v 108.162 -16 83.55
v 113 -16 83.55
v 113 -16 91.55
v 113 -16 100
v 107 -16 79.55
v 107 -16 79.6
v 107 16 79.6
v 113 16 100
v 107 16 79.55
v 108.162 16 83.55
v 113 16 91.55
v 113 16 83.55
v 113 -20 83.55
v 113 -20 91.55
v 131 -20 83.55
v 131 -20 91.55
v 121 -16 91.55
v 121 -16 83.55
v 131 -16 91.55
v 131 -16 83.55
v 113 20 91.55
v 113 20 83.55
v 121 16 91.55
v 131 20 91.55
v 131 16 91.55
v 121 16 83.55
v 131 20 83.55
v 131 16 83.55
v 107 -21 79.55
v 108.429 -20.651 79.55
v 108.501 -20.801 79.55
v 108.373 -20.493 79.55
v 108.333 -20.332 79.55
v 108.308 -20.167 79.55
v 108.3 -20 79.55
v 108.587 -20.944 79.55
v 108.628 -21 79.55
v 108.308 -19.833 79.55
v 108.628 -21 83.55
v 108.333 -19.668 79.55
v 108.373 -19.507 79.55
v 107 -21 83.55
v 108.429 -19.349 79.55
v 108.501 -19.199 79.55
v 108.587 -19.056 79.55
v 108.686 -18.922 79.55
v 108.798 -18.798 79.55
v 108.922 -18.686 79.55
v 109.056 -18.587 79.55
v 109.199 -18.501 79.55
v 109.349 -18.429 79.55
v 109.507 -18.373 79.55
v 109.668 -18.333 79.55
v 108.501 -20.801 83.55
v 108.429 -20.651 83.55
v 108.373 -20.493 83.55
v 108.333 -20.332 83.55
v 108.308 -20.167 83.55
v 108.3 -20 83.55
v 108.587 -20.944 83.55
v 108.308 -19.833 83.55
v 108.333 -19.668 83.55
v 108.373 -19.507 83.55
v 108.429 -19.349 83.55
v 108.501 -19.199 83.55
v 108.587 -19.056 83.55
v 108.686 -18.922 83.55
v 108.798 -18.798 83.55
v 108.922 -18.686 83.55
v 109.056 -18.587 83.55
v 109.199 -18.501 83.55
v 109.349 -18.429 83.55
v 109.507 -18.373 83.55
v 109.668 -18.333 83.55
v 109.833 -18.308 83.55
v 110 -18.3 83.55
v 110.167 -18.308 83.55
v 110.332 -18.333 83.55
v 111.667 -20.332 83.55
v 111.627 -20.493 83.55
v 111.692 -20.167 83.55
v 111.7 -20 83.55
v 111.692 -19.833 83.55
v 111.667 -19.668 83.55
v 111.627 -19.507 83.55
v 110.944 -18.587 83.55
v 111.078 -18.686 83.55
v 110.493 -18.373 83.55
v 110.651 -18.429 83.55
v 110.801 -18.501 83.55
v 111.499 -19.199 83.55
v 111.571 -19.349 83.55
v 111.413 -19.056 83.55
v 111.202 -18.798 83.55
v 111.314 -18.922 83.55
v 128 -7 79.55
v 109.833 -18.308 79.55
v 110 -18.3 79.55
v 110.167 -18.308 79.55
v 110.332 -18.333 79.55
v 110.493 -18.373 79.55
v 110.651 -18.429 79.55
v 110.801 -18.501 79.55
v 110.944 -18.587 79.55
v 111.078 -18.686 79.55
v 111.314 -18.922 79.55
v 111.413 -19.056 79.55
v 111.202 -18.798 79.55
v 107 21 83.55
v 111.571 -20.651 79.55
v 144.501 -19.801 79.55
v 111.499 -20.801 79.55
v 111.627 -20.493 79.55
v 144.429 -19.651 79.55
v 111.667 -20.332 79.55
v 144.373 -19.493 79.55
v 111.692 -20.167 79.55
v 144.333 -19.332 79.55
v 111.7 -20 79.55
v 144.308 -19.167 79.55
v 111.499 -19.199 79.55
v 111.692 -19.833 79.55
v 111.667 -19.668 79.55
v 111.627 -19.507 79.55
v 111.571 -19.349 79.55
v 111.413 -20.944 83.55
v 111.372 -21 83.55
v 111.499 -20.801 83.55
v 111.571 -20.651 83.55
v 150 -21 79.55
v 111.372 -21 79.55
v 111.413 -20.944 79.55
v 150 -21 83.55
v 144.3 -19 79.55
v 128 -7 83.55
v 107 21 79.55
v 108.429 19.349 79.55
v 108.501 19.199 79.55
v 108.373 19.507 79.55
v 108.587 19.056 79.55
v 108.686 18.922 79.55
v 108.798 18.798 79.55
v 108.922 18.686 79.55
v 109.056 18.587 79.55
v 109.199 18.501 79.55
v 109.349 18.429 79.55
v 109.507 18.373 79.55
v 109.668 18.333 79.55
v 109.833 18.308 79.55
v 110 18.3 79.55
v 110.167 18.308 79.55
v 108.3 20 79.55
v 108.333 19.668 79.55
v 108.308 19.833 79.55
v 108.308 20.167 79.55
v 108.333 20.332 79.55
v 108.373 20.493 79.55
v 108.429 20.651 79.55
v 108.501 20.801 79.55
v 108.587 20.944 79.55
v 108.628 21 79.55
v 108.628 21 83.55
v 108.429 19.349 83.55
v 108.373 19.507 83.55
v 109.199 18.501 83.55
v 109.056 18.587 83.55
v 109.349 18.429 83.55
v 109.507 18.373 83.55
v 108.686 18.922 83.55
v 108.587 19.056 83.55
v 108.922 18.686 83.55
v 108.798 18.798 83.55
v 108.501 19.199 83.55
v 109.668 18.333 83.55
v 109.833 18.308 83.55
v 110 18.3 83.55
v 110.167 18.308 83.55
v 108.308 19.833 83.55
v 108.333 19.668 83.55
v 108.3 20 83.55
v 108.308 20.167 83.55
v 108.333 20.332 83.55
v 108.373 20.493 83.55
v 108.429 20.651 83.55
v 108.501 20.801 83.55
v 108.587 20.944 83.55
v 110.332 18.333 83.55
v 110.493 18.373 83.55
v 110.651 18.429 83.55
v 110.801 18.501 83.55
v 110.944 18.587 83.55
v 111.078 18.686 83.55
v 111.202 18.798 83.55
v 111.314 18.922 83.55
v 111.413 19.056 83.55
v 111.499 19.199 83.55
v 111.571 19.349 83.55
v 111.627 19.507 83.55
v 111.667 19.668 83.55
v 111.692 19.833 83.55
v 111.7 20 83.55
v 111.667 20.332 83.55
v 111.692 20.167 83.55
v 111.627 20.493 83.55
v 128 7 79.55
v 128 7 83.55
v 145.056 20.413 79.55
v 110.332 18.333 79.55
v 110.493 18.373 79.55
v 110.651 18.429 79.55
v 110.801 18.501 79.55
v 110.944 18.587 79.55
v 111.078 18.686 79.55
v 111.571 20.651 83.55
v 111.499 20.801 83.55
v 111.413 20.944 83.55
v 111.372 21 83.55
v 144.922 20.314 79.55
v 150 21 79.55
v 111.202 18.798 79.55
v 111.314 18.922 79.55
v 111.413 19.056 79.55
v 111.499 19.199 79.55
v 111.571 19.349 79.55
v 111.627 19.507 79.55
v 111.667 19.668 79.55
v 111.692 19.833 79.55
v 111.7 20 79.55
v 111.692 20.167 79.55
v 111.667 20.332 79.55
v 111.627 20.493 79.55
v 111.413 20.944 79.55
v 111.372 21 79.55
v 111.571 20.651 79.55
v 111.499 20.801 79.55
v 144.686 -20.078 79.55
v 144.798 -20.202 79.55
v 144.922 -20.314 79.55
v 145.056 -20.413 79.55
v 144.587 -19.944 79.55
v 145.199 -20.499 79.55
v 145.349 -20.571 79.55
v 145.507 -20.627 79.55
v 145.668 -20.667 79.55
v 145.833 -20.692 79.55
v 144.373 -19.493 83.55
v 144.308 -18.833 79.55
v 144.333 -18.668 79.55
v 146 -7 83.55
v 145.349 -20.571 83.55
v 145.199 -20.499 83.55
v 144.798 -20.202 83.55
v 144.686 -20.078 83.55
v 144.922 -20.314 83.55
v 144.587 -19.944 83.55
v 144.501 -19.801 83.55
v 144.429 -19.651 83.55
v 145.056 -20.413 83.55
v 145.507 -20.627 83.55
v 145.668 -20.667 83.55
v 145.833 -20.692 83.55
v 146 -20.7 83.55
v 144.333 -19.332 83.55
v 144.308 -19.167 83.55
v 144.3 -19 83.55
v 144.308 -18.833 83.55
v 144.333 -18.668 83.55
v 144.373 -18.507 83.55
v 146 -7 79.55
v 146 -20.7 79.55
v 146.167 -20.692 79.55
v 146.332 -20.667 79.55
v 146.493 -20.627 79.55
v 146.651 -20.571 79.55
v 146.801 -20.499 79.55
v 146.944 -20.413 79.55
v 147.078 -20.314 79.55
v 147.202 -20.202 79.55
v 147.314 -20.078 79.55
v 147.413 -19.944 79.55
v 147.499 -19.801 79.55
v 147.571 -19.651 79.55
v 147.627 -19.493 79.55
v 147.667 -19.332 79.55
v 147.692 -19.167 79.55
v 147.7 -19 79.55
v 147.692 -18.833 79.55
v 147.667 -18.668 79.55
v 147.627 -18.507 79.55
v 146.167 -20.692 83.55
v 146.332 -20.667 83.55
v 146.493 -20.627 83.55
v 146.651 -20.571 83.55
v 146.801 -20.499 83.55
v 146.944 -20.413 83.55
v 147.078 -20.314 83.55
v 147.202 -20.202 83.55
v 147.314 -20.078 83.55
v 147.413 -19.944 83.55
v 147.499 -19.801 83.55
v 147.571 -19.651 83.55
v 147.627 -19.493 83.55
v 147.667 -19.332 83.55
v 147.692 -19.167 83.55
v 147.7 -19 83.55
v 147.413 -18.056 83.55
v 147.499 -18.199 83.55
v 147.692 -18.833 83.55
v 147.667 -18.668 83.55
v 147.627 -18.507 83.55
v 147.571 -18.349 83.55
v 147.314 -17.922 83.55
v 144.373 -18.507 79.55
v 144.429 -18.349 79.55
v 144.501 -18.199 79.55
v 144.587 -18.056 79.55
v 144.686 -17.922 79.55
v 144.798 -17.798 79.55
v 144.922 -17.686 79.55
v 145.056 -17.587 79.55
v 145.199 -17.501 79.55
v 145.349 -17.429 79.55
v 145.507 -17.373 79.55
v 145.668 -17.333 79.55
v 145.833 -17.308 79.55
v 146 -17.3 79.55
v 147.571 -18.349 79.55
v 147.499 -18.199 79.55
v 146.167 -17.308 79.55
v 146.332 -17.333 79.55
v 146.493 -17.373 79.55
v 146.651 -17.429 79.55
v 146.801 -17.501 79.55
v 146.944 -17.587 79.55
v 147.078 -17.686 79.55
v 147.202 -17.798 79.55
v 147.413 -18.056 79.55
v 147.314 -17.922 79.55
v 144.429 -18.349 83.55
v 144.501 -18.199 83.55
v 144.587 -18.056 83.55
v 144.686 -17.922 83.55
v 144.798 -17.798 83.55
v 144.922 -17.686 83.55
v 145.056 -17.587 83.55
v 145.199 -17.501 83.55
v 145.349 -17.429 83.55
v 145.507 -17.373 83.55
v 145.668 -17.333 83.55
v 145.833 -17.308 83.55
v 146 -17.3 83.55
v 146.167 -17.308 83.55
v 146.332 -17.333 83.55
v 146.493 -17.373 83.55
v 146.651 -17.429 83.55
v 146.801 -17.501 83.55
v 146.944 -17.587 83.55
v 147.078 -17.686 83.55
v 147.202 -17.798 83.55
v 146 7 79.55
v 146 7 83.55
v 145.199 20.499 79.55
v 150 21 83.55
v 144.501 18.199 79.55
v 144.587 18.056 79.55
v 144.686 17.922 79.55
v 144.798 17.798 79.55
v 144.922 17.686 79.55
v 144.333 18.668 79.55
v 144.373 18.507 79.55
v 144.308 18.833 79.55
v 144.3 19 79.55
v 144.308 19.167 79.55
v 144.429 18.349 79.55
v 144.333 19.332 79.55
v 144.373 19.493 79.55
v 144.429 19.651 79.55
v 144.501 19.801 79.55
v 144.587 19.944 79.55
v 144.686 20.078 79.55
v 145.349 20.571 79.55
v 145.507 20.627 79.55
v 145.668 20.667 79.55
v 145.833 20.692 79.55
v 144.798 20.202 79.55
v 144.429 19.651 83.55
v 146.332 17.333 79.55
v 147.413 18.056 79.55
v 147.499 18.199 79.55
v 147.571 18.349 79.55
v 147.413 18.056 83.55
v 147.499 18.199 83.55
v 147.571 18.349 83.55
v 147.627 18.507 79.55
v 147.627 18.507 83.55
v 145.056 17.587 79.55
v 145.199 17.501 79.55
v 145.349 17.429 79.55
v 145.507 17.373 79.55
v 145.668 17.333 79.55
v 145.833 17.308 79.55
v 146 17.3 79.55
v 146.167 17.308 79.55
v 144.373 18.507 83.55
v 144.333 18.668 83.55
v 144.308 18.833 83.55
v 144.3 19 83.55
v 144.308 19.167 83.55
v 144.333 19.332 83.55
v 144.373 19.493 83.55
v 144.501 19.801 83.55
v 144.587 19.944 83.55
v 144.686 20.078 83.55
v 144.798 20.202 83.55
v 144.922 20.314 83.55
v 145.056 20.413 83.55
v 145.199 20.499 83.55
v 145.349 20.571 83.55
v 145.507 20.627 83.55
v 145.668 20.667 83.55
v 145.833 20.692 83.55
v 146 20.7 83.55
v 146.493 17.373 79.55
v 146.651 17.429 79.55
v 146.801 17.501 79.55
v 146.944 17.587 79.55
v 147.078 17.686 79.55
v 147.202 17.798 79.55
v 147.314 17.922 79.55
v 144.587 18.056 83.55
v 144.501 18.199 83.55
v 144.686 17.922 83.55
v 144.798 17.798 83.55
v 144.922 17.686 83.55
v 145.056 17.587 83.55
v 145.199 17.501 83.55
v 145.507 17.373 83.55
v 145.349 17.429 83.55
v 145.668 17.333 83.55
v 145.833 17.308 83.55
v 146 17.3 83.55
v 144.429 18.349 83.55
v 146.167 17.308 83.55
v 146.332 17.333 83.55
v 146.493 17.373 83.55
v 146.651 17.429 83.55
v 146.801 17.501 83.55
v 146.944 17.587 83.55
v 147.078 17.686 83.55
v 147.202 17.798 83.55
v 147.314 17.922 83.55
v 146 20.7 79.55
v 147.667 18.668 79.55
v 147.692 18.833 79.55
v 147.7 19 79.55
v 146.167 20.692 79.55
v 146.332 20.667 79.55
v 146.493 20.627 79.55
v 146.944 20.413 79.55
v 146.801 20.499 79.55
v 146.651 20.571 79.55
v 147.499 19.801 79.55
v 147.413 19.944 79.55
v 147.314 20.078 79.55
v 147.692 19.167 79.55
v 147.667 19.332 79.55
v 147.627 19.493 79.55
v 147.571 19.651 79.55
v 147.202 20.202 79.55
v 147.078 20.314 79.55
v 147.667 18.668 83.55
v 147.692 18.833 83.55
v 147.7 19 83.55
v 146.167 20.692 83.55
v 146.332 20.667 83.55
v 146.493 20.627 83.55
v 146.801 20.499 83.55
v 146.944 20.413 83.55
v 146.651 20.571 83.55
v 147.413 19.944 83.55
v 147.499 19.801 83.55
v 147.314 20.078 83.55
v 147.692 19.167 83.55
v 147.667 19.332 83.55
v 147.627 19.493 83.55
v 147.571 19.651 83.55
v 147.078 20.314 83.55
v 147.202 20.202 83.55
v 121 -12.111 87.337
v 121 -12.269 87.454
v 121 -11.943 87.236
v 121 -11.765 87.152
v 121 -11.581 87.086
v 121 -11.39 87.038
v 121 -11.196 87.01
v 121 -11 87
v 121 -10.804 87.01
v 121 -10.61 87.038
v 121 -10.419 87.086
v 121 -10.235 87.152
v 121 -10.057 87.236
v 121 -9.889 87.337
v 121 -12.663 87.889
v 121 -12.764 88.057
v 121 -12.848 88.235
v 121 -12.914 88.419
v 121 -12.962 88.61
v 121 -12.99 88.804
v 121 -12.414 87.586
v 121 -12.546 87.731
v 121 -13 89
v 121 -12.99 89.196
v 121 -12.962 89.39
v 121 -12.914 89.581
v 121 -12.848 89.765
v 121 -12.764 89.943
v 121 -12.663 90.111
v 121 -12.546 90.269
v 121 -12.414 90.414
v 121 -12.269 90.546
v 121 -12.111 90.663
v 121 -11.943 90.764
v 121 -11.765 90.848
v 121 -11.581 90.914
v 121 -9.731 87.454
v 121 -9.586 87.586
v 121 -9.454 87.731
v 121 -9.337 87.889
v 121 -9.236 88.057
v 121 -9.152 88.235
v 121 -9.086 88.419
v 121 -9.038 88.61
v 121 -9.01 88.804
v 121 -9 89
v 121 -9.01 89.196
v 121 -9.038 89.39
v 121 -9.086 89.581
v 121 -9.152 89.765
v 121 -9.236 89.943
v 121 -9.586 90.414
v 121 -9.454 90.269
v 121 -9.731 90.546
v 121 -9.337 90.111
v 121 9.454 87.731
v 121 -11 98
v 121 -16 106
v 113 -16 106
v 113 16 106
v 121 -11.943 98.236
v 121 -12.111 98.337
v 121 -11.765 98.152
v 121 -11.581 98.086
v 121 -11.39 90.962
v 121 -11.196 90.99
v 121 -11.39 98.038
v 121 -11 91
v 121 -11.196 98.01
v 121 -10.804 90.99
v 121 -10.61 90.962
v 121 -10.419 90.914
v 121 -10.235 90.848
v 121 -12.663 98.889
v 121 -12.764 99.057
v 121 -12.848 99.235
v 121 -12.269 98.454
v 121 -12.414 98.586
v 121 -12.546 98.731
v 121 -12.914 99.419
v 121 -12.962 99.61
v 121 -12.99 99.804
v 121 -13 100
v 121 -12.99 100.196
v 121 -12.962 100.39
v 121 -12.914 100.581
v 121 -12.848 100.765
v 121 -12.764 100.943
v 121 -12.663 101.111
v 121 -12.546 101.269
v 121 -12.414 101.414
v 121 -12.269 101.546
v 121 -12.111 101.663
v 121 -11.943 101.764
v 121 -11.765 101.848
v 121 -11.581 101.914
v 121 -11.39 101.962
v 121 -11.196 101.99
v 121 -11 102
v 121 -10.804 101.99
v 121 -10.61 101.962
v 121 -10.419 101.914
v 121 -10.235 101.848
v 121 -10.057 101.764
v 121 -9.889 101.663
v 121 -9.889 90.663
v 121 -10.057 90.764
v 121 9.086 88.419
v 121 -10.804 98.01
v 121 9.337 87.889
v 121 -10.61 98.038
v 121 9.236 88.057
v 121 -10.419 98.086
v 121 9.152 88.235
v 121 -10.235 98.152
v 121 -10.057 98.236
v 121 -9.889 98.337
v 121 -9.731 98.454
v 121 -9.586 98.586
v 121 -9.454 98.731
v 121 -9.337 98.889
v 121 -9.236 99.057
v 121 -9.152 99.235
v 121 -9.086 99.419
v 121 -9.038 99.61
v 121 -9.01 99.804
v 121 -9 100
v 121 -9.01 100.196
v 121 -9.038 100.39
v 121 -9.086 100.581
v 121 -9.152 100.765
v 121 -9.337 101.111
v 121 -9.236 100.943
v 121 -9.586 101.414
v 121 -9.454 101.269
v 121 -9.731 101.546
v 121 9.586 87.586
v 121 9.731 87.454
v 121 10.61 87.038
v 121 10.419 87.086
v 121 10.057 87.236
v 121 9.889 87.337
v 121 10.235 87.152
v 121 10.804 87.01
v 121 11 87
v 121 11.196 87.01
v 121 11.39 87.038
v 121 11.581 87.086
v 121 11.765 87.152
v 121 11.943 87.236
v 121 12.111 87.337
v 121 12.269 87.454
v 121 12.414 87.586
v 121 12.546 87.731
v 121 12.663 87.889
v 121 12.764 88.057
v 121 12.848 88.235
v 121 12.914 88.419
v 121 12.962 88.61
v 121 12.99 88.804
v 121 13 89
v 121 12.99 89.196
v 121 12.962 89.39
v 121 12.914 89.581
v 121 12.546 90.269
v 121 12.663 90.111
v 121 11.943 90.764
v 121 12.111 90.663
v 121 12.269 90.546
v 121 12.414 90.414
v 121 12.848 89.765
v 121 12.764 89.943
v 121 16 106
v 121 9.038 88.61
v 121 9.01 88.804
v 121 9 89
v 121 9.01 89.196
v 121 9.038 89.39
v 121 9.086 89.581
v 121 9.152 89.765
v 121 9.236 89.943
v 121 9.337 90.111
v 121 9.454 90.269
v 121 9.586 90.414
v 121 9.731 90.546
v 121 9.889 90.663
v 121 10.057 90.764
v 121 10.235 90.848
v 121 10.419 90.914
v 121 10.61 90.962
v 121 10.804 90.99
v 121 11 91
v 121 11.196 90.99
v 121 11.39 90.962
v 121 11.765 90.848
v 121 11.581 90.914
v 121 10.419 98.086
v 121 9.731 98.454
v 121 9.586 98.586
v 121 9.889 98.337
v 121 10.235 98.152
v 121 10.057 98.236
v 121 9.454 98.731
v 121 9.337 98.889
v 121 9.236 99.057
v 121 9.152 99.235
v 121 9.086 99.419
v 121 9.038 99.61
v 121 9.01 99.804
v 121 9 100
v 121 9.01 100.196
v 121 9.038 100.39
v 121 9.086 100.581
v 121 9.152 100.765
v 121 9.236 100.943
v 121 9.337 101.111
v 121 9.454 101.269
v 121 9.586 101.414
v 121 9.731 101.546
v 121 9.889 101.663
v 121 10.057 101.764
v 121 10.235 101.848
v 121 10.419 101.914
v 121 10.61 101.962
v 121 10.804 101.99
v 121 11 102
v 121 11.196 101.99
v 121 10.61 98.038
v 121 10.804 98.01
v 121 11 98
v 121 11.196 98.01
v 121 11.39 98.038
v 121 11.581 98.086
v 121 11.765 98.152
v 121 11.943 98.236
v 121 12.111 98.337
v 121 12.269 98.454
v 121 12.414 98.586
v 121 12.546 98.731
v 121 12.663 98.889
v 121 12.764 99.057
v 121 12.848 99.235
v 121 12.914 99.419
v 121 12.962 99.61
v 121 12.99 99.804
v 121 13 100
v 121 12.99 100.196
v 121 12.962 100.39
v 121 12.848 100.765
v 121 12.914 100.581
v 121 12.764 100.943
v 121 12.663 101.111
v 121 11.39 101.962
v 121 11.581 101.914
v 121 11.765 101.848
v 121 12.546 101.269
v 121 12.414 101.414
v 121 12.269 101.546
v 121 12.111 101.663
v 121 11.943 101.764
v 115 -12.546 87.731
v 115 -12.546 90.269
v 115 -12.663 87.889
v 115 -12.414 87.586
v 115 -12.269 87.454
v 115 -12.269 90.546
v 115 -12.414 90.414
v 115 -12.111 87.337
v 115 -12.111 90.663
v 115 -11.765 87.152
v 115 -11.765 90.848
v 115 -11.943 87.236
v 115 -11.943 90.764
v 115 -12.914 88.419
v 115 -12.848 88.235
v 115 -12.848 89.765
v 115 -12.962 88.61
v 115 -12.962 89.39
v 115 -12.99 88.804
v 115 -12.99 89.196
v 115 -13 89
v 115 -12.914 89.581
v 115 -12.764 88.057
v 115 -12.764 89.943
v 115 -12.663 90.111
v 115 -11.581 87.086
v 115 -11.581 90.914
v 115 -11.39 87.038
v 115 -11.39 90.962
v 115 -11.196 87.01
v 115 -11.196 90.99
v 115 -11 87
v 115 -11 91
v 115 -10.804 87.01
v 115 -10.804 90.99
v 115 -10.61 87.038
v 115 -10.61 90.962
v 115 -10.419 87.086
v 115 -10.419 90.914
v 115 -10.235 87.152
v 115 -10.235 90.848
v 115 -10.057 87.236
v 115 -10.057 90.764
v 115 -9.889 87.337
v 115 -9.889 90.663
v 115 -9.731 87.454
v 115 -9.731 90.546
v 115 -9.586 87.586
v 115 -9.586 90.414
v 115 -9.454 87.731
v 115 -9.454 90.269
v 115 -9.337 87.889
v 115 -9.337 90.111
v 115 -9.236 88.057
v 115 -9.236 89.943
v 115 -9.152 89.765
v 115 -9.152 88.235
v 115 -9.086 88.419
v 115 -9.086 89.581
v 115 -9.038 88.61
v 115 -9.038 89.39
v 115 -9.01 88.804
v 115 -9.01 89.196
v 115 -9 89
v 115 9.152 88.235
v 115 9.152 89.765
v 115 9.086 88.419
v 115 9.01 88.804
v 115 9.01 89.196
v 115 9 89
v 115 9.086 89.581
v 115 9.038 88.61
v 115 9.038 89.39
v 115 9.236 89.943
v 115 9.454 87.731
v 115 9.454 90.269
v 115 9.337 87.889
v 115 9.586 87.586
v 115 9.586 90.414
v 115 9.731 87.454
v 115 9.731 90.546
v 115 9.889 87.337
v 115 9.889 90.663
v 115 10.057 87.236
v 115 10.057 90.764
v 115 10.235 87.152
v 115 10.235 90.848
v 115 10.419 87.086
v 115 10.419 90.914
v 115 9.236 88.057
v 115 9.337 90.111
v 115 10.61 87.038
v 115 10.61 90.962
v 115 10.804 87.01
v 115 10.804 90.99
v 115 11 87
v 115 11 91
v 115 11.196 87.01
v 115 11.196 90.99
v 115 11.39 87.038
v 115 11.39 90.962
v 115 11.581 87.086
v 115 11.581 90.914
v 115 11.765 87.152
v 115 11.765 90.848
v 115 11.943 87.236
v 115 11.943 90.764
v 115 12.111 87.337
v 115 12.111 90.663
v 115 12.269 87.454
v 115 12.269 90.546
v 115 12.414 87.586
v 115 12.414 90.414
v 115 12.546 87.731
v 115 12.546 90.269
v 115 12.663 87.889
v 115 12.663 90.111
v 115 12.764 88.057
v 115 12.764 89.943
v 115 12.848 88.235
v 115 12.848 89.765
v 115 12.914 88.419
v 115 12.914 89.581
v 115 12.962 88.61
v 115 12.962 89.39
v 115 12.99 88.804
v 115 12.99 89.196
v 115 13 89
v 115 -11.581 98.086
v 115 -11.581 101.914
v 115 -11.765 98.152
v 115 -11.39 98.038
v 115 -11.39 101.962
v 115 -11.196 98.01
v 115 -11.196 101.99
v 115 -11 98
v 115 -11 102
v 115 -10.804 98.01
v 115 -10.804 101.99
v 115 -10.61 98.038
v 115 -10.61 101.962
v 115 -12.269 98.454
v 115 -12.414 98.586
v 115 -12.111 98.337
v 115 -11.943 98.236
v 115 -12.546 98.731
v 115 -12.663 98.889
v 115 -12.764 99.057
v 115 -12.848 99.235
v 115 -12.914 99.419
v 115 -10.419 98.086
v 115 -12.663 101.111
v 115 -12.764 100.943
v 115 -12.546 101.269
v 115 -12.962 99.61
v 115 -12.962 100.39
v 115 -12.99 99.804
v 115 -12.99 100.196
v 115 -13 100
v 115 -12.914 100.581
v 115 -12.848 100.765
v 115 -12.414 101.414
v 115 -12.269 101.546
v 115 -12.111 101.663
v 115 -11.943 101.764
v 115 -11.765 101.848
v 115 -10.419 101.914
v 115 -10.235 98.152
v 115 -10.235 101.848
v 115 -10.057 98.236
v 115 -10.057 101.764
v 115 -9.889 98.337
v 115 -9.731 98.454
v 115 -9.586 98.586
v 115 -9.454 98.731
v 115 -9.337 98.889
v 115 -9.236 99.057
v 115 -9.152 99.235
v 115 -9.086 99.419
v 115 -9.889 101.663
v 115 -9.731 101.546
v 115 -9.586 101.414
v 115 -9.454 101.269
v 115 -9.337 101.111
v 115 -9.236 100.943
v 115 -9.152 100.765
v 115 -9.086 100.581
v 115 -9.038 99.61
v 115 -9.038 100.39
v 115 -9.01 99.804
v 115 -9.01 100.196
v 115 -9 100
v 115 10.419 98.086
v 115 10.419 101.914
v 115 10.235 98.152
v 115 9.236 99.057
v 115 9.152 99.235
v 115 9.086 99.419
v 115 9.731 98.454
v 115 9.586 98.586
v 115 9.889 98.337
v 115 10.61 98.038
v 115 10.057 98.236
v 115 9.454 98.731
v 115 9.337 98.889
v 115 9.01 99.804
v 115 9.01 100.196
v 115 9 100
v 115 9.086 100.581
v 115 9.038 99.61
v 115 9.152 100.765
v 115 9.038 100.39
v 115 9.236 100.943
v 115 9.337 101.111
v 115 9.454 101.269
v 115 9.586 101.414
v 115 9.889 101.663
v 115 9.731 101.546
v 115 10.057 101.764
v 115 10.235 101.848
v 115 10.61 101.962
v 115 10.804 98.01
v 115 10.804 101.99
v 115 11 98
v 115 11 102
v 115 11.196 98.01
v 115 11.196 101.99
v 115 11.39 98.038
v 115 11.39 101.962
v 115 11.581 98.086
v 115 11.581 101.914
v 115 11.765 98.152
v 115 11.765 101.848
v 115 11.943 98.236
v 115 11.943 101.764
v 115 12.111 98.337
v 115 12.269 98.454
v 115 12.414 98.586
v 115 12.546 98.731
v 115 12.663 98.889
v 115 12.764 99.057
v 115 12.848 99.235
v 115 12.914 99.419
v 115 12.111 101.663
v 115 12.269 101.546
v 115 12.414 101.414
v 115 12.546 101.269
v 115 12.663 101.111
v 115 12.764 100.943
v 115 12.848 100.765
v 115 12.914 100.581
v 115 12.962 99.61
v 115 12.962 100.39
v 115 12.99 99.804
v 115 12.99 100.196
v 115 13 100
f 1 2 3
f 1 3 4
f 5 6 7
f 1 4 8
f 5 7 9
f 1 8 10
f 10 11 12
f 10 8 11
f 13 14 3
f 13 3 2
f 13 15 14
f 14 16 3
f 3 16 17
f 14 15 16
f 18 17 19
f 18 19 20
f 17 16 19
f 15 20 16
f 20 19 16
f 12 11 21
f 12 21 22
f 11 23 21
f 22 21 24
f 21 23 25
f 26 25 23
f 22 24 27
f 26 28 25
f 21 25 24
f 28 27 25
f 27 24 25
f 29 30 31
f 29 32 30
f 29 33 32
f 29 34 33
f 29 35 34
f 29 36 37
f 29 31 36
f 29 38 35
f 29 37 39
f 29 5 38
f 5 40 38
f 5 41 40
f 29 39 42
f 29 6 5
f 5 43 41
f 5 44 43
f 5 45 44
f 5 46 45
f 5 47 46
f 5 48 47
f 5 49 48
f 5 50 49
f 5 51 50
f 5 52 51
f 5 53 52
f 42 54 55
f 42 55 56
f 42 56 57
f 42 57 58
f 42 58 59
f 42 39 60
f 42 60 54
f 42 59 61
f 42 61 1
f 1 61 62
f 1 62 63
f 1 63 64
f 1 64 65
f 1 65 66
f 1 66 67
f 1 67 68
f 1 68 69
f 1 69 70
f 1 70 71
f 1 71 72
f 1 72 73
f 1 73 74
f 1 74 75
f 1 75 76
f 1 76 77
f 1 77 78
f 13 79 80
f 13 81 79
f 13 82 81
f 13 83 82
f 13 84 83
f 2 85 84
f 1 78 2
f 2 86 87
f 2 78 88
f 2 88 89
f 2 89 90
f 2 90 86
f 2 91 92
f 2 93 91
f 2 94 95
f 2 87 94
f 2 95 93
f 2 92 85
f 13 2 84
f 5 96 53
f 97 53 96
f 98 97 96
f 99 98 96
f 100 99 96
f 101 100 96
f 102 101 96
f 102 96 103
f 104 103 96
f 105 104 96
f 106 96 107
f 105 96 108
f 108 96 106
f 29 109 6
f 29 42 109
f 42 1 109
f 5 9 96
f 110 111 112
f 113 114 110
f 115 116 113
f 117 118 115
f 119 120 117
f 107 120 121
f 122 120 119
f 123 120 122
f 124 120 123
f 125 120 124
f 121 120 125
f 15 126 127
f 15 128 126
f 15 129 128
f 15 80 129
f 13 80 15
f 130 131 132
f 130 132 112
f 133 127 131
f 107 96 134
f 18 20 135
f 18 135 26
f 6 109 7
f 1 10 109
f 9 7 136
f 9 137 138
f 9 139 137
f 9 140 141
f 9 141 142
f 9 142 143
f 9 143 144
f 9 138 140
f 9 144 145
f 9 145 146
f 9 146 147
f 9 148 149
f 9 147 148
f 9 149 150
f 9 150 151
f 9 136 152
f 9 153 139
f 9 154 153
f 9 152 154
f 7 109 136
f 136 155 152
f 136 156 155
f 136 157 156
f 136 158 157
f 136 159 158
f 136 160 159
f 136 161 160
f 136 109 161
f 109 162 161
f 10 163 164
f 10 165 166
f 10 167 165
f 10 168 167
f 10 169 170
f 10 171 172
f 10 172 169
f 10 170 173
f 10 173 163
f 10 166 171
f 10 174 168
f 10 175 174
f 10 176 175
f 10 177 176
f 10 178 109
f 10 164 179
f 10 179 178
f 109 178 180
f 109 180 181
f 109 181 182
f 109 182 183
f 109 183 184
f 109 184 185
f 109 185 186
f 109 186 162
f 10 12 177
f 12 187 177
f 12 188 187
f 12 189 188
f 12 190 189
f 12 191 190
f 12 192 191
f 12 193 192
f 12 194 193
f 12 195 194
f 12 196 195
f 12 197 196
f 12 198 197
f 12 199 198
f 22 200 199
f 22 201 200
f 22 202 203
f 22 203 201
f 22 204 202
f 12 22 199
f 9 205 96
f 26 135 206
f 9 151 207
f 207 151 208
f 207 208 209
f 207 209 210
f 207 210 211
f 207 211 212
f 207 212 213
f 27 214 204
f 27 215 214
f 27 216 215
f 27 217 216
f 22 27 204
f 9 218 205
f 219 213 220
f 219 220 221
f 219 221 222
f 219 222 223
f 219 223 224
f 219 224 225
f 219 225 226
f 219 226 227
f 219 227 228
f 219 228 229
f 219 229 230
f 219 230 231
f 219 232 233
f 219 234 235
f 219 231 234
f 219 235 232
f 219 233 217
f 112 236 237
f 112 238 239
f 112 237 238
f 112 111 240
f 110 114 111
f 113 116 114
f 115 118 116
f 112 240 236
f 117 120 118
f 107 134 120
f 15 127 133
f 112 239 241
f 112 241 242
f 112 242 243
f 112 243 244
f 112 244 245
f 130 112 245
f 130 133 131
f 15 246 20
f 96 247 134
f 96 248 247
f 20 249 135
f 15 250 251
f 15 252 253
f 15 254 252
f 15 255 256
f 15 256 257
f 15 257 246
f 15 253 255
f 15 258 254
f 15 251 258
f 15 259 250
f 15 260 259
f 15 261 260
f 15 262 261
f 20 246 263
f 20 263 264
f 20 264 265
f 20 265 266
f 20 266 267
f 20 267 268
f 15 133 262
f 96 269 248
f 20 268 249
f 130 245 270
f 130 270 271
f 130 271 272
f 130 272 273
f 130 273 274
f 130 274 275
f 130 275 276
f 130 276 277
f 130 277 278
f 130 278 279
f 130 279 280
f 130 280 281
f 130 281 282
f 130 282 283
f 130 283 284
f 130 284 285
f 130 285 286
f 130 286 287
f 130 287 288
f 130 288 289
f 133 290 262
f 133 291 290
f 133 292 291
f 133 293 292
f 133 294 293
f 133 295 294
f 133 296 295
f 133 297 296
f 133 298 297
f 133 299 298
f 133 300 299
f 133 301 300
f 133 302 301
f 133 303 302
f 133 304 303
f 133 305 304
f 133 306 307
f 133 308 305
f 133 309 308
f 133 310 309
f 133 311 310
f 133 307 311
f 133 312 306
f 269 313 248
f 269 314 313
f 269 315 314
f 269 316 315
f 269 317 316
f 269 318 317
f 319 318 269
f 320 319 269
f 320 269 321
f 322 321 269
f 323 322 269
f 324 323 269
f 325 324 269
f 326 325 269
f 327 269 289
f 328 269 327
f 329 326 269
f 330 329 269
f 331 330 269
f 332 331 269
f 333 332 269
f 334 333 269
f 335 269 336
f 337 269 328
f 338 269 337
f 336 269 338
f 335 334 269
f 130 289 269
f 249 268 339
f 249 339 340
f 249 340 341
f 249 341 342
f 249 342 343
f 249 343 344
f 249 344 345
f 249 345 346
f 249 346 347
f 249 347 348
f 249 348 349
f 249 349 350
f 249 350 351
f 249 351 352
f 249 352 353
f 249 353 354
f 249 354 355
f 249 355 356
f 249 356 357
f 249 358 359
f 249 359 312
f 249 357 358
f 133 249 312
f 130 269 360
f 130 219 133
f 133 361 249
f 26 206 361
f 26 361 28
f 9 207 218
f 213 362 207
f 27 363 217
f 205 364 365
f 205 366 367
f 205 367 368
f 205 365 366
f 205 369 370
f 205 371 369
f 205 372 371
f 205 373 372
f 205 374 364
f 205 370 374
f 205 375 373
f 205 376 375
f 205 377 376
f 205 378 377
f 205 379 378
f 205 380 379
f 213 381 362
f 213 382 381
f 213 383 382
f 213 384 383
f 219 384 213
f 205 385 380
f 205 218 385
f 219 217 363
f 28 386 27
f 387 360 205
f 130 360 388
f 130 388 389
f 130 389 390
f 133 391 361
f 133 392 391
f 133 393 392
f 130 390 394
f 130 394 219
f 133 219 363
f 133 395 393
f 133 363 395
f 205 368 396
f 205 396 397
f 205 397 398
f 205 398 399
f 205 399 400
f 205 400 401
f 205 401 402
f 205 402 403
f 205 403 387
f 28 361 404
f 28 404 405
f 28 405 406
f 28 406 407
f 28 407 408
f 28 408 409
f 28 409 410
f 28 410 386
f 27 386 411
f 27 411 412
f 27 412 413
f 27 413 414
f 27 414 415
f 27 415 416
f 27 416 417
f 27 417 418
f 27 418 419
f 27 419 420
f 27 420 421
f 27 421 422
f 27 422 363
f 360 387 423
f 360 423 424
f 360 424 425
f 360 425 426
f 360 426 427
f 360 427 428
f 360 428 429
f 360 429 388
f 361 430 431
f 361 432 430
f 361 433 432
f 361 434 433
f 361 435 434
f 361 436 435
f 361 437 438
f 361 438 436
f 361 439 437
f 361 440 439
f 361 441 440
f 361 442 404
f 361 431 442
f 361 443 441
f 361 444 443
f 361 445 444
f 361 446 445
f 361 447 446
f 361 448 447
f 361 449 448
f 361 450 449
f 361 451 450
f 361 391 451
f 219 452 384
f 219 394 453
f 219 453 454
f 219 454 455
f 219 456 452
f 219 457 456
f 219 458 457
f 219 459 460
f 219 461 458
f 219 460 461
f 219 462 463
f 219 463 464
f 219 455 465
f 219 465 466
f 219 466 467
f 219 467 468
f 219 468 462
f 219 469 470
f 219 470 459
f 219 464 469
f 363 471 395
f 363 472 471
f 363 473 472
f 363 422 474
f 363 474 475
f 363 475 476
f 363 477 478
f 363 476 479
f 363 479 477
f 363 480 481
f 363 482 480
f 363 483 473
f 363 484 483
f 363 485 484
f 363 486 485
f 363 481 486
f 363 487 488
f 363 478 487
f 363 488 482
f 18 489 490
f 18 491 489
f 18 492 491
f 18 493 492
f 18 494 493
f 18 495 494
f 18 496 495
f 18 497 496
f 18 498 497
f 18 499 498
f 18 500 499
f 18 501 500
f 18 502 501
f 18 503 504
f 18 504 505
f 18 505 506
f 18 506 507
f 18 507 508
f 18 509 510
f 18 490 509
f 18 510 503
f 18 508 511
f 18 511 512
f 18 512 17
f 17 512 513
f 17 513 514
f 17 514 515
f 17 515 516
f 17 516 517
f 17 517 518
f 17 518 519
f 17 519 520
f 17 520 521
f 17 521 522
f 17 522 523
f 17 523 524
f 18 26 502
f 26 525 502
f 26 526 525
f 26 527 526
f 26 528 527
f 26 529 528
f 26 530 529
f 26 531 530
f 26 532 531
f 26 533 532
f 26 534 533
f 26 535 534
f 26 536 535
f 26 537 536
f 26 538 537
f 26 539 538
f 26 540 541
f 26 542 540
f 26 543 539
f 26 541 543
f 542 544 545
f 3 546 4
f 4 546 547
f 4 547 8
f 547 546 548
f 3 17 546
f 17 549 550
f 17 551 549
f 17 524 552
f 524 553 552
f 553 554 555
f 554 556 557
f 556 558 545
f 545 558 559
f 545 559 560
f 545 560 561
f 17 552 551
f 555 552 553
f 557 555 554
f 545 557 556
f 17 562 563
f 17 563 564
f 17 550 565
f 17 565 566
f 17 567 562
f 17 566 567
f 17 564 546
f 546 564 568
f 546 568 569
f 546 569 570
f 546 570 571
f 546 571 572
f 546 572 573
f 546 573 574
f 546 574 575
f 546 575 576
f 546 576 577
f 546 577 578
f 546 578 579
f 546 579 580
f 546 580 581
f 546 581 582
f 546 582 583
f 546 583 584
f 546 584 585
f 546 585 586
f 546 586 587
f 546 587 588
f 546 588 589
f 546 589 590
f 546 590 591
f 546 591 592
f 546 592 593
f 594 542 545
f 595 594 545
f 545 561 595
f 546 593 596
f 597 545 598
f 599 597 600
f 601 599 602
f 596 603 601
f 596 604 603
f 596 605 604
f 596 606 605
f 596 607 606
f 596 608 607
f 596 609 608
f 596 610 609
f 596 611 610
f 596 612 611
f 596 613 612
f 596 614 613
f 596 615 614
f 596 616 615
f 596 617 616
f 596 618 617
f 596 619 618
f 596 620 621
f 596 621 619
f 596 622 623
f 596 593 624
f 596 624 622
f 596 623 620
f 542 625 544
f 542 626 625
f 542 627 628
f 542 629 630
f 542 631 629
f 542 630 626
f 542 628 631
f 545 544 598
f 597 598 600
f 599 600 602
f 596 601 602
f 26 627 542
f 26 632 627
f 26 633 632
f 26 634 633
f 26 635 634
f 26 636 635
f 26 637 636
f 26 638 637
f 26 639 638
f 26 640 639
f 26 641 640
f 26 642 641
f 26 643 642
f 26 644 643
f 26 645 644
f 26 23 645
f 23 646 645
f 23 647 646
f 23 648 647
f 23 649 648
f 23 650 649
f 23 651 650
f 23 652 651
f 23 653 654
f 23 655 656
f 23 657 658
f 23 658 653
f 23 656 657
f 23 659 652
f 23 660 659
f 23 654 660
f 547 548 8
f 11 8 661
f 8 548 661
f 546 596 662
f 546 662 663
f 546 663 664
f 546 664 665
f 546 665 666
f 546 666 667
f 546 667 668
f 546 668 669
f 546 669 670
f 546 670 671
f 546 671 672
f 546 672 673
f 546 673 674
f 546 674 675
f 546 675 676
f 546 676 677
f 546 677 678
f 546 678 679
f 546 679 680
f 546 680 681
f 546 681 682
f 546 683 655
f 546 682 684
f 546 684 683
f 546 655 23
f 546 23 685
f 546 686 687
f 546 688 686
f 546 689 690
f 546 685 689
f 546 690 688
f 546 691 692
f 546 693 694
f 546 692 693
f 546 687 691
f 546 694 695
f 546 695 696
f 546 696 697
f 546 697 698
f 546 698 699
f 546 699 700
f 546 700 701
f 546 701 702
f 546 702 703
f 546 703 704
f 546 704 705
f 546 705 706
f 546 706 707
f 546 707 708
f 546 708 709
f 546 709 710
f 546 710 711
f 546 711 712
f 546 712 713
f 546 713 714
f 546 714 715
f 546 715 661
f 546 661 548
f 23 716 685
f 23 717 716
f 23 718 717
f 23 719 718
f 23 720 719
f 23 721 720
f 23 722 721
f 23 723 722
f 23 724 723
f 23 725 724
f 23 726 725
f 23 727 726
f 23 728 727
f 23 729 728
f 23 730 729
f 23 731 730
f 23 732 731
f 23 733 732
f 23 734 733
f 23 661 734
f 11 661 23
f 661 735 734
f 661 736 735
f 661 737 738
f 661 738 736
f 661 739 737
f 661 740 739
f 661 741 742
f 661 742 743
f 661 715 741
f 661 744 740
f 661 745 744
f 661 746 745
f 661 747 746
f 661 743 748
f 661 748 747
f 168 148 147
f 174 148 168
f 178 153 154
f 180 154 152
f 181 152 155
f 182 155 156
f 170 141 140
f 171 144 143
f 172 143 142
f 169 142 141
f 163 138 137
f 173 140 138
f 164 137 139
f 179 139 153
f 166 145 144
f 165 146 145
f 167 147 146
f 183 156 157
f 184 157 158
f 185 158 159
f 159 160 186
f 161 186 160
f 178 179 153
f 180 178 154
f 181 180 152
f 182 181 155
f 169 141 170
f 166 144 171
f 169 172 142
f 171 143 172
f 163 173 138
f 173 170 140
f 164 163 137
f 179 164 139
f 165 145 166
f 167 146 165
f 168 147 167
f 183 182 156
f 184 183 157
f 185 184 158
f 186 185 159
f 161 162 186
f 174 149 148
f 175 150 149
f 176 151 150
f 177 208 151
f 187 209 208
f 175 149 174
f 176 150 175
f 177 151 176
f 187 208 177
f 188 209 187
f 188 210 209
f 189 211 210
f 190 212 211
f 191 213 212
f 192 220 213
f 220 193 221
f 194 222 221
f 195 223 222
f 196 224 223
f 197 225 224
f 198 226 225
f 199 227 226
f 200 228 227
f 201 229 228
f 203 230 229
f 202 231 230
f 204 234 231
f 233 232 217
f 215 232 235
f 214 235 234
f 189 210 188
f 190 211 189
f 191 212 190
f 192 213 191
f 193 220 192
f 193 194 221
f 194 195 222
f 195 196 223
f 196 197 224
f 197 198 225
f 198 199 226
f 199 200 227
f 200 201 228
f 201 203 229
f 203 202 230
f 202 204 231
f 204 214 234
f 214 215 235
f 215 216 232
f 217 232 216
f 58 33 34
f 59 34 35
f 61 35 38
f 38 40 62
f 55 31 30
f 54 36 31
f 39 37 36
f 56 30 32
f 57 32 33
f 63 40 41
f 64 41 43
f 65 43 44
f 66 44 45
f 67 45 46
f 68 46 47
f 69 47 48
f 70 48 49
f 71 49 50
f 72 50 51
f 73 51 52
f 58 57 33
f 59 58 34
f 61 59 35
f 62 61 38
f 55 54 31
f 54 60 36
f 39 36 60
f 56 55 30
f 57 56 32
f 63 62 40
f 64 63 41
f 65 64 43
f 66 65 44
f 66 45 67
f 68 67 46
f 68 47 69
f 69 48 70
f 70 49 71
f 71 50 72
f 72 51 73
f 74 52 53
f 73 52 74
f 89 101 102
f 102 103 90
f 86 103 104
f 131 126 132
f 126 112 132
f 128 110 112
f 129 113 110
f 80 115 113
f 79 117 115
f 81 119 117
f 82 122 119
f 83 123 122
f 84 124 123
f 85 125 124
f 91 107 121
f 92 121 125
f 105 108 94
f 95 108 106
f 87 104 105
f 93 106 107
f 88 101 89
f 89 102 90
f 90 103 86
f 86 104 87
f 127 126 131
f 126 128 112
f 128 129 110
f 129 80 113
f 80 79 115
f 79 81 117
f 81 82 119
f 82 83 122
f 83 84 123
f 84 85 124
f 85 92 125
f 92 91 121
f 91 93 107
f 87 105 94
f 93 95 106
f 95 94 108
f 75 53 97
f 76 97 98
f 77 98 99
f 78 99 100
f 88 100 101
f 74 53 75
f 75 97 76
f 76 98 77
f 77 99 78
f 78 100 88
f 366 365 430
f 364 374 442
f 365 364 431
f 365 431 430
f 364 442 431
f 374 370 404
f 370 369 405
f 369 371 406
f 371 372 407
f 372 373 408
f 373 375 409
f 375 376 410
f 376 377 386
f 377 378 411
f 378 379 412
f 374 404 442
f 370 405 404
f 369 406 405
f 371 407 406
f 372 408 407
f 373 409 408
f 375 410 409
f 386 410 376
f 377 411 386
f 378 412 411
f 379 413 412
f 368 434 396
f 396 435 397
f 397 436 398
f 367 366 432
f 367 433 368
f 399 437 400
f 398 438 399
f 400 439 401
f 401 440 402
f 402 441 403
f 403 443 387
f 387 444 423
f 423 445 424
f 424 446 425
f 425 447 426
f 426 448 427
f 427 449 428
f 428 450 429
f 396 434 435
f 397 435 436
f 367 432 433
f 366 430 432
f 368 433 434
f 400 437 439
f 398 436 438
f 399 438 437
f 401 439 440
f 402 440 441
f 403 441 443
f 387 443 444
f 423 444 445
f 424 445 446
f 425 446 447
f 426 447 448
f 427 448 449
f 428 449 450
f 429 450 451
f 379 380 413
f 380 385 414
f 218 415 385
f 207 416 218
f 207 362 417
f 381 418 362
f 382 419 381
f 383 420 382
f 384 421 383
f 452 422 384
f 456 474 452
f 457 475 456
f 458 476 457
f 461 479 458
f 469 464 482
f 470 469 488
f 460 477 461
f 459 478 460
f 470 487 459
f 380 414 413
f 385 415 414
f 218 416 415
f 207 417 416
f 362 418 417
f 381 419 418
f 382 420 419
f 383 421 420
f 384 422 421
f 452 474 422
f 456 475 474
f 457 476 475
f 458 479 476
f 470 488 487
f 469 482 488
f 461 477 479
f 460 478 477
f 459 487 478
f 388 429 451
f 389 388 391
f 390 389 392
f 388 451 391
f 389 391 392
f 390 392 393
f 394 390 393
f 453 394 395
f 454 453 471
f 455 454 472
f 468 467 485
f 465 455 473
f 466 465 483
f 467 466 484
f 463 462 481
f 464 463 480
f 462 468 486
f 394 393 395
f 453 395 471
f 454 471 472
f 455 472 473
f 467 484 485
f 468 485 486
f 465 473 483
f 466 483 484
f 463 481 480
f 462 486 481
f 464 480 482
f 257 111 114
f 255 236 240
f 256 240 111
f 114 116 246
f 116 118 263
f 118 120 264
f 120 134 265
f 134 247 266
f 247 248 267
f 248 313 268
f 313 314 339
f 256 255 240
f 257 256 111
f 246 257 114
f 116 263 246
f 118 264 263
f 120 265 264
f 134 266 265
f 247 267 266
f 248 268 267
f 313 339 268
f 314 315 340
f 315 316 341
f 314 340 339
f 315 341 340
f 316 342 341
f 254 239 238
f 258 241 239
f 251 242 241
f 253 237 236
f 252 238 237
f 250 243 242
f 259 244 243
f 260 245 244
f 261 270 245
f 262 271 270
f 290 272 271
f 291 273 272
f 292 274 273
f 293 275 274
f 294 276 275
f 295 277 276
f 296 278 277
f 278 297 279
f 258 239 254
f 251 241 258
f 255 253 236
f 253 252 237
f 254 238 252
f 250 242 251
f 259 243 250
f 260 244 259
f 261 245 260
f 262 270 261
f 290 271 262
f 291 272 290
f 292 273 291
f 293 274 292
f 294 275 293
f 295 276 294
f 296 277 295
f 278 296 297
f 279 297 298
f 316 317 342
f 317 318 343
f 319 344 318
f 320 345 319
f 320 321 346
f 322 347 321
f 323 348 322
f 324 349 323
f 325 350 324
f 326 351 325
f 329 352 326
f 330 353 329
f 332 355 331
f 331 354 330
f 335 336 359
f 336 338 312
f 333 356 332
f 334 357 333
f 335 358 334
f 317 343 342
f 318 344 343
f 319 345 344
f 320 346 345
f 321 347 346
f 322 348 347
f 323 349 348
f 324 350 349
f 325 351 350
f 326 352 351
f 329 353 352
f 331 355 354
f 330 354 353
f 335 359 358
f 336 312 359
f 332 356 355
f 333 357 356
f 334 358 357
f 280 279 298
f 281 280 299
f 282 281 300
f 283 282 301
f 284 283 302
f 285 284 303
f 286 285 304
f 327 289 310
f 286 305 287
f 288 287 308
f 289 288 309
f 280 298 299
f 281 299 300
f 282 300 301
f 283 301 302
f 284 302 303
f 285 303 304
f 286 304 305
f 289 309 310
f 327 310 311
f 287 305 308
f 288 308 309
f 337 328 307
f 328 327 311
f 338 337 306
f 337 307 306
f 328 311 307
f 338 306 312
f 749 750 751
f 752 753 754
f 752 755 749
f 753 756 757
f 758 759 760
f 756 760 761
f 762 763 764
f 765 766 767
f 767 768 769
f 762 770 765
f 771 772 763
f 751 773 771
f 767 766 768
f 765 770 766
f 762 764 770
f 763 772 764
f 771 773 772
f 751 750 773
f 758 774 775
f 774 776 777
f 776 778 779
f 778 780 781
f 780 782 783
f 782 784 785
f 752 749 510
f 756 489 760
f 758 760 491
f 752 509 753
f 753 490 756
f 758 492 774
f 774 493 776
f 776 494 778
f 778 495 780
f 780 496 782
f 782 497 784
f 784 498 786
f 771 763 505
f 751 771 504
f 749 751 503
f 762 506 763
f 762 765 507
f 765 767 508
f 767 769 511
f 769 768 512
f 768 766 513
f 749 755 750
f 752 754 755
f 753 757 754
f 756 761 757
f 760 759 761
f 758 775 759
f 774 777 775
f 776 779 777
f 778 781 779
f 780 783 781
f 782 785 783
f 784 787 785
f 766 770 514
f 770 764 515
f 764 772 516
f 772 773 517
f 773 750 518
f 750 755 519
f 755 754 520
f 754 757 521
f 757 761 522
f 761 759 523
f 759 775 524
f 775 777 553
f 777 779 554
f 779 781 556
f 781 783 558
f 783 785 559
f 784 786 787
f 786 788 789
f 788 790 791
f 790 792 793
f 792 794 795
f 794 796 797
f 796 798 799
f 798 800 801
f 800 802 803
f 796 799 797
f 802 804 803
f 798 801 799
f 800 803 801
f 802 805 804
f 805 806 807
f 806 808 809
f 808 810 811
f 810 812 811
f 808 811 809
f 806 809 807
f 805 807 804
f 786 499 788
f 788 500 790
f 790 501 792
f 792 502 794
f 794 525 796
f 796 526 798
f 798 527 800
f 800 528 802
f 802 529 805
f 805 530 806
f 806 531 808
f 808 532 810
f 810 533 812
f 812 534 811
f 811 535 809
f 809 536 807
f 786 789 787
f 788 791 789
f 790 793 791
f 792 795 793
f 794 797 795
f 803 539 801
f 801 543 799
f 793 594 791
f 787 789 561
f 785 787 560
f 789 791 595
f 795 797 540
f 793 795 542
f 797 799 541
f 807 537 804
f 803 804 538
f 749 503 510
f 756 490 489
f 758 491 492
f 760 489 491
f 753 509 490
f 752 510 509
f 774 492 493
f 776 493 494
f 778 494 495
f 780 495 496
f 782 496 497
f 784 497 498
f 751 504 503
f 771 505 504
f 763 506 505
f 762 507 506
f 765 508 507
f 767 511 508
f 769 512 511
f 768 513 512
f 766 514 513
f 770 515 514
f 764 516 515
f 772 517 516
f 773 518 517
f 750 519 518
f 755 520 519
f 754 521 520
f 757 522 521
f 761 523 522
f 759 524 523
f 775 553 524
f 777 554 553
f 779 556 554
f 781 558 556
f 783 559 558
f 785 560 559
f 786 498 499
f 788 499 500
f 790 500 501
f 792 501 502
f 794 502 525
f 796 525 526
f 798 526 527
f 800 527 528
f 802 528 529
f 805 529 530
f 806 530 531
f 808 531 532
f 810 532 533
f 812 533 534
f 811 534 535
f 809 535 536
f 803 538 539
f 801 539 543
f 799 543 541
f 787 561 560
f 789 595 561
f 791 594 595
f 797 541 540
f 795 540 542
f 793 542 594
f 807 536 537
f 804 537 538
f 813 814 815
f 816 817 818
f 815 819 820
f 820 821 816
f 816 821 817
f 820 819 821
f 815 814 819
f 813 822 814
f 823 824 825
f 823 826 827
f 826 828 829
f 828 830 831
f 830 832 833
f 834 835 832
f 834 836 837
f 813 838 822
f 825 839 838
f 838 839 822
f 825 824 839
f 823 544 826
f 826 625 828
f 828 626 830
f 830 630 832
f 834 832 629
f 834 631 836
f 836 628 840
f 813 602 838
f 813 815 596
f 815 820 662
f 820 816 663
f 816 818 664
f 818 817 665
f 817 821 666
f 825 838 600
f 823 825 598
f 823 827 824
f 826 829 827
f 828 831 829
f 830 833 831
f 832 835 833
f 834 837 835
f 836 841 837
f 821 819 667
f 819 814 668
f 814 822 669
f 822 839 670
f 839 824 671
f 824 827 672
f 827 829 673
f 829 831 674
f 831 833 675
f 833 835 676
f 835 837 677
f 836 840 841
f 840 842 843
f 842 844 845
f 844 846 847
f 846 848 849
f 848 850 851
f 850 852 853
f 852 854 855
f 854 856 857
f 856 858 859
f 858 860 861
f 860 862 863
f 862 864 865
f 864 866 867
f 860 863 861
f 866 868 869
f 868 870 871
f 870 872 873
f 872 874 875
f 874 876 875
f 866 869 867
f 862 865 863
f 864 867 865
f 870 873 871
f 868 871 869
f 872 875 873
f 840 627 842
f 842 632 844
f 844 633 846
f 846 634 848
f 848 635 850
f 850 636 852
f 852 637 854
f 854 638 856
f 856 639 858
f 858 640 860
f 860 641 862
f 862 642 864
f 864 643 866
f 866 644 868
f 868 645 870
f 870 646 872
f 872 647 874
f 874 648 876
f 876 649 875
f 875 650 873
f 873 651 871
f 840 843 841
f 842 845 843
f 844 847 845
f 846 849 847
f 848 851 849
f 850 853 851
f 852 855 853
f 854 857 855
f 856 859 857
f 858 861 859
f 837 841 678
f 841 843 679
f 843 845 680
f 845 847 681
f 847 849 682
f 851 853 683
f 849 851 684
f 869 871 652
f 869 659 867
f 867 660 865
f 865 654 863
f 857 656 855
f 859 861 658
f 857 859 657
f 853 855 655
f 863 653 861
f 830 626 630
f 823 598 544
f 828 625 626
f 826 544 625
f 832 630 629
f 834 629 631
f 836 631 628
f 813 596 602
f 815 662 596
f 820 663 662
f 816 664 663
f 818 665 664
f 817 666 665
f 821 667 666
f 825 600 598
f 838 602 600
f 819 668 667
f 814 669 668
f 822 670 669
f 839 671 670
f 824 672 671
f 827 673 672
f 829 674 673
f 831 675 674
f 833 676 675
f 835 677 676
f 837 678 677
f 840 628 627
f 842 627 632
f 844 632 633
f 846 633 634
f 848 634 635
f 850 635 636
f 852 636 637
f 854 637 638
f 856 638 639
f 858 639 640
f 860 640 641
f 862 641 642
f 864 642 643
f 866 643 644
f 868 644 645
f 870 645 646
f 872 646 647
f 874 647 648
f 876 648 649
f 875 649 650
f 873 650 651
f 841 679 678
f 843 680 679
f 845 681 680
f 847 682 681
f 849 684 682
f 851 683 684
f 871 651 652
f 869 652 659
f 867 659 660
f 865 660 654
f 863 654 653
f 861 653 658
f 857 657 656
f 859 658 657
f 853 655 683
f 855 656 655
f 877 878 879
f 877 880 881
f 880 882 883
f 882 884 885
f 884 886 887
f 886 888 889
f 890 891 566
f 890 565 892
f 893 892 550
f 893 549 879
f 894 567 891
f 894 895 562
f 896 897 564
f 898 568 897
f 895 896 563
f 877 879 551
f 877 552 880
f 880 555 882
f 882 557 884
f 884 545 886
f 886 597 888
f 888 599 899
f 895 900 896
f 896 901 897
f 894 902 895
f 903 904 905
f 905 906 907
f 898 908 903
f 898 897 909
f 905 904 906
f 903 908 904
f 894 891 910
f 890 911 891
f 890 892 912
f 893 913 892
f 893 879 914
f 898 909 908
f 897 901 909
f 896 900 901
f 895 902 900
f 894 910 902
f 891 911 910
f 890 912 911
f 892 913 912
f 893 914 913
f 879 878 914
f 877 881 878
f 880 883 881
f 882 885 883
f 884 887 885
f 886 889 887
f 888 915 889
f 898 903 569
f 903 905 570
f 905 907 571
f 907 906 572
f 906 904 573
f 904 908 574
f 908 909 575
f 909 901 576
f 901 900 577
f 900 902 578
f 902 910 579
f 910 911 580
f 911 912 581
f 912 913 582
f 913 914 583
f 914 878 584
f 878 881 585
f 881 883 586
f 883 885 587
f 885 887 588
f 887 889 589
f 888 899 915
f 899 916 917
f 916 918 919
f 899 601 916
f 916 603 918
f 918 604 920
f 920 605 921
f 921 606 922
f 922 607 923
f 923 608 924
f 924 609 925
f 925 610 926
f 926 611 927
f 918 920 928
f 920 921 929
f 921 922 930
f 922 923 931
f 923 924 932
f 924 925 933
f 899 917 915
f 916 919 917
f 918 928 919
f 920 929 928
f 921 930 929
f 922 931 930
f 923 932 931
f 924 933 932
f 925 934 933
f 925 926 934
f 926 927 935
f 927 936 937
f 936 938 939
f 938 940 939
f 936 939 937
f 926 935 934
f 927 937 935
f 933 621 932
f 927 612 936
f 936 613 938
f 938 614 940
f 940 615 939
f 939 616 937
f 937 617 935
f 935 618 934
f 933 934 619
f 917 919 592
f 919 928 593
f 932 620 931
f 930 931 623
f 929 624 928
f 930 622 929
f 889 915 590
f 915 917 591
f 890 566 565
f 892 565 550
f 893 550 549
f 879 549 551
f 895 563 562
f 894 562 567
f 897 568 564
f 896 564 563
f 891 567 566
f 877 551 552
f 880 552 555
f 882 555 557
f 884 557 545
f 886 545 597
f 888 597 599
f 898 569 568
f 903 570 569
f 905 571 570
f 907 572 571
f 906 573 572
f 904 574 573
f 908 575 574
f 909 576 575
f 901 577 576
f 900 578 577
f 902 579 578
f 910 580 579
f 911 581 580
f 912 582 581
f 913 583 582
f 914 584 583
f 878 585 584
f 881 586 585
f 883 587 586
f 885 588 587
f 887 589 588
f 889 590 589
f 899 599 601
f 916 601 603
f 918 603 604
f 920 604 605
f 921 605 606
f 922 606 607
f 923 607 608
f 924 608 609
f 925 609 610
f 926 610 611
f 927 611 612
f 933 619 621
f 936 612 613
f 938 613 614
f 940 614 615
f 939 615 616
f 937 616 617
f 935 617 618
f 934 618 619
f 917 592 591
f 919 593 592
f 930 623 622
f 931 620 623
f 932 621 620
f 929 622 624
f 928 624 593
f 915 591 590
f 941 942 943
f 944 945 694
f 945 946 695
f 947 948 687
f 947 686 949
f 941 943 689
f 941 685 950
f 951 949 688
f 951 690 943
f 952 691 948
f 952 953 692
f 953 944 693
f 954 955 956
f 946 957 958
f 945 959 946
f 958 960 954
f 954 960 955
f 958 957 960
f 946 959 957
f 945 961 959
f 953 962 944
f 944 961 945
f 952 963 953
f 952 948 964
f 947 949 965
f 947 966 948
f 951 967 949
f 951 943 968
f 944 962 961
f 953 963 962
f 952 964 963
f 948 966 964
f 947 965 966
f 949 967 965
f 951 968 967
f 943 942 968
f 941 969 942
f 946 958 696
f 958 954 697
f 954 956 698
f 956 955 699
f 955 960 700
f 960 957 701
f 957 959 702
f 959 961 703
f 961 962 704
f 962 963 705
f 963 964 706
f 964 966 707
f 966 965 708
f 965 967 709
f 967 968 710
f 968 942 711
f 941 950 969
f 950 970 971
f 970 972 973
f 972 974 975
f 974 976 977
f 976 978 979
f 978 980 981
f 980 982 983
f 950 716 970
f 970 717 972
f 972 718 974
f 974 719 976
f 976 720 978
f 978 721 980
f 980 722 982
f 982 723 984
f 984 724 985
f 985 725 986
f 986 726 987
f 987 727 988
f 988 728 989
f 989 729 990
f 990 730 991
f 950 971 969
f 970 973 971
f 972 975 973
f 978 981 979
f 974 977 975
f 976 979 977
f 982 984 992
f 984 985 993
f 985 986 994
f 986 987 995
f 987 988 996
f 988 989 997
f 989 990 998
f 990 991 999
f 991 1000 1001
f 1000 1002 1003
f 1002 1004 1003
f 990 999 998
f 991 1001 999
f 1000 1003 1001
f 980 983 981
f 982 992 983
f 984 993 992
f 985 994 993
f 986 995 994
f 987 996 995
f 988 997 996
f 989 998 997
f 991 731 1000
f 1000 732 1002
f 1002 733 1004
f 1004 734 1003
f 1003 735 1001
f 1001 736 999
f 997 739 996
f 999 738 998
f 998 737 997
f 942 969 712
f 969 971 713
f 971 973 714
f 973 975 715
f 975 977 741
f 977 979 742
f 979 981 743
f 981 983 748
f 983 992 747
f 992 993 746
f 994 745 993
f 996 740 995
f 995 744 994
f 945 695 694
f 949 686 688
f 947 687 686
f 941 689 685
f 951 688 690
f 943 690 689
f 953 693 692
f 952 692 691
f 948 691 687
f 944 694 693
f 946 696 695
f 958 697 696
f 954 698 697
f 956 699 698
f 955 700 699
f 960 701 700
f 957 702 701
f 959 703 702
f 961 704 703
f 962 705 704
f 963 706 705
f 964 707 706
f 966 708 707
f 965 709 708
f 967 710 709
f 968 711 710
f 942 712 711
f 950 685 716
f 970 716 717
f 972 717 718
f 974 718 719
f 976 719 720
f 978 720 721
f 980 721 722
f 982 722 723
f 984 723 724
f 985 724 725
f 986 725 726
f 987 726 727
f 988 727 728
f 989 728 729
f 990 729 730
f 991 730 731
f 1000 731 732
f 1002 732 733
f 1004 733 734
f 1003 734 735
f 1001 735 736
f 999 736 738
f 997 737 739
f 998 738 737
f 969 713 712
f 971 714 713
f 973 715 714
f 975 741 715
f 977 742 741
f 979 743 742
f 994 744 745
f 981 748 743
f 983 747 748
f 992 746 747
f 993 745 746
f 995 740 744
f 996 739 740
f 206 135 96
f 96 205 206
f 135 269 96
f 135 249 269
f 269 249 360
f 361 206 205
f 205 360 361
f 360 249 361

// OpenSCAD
// =============================================================================
// NOVA chassis — NECK BRACKET: front-shoulder-deck adapter for the fwd HEAD
// =============================================================================
// Head re-architecture 2026-07-07 (docs/head-rearchitecture-plan.md). The head
// moves OFF the riser front and FORWARD onto the FRONT-SHOULDER top (the
// "neck"), projecting ahead like a fox. Interface = this SEPARATE bracket
// (user call): the shoulder stays ONE gate-clean print-2-identical part; the
// head stays a modular removable unit; the bolted joint is the cantilever weak
// point, so it is a TALL rear vertical bolt face (good pitch couple), NOT a
// thin neck.
//
// Placement study: forward_head_study.py -> DX+73 DZ+6 from the riser head:
//   L2 crown center x126.5 (optical z~160); D456 back-face (143,0,111.5), 27deg
//   down, body x136.4..172.7 z86.8..124.4 y+-61.9.
//
// FRAME: trunk (+x FRONT, z up). Front-shoulder deck TOP = z79.55, spans
//   x109..158, y+-59.4. Occupied deck zones the bracket MUST avoid:
//     * horn-plate TOP FLANGES  x143..158, y+-23..55, z79.55..82.75 (legs)
//     * horn-plate heat-sets    x147/156, y+-27/+-51
//     * deck lightening window  x127..153, y+-16 (open to the C-box below)
//   Free deck-solid the bracket bolts to: the CENTER SPINE y+-21 (between the
//   window y16 and the horn flanges y23), rear band x109..127.
//
// CANTILEVER (study): nothing may sit ABOVE z86.8 forward of x136 (D456 body).
//   So the head-mount face lives REARWARD of the camera, under the L2 crown.
//
// MOUNT SCHEME (mirrors the retired riser wall-row, proven):
//   - BASE PLATE flat on the deck (z79.55..83.55); bolts DOWN through the deck
//     at 4 corners = drill O3.4 at first assembly, M3 + washer + NYLOC on the
//     underside (reached through the deck window + open trunk-end aperture,
//     BEFORE the riser goes on) — the accepted flange-foot / battery-sandwich
//     practice. NO shoulder-mesh change -> shoulder stays gate-clean.
//   - REAR VERTICAL FACE at x121 rising z83.55..106, 4x M3 HEAT-SETS (from its
//     rear face); the head's rear boss bolts FROM BEHIND into them (M3x14).
//     Tall bolt rectangle (z89 & z100, y+-11) resists the fwd-tipping moment.
//   - GUSSETS fore+aft tie the face to the base plate.
// PRINT: base-down (deck face on the bed); the wall + gussets rise. PA6-CF.
//   4mm walls. No overhangs needing support beyond the gusset undersides.

$fn = 64;
EPS = 0.05;
M3_CLEAR = 3.4;
HEATSET_D = 4.0;   // M3 brass heat-set OD (leg_v6: 4.0 pilot)
HEATSET_L = 6.0;

DECK_TOP = 79.55;

// ---- base plate on the deck (center spine, clears window + horn flanges) ----
BASE = [107, 150, -21, 21];       // x0 x1 y0 y1
BASE_T = 4;                        // z79.55..83.55
// deck-through bolts: drill-at-assembly M3, nyloc below. In the y+-20 solid
// spine, clear of the window (y16) + horn bores (y>=27). Fore-aft span 36;
// front pair pulled inboard/rearward of the horn+servo cluster for wrench
// access to the underside nyloc.
BOLT_XY = [[110, 20], [110, -20], [146, 19], [146, -19]];

// ---- rear vertical mount face (the head bolts to this) ----------------------
WALL_X0 = 113; WALL_X1 = 121;     // 8mm face (front x121): holds M3 heat-sets
WALL_Y  = 16;                      // half-span
WALL_Z0 = 79.55; WALL_Z1 = 106;   // rises from the deck to under the L2 body
HM_Z    = [89, 100];               // bolt rows (tall couple vs the fwd moment)
HM_Y    = 11;                      // bolt half-span

module gusset(x_apex, z_apex, x_base0, x_base1, y0, y1) {
    // wedge in the x-z plane, extruded across y
    hull() {
        translate([x_base0, y0, DECK_TOP]) cube([x_base1 - x_base0, y1 - y0, EPS]);
        translate([x_apex, y0, z_apex - EPS]) cube([EPS, y1 - y0, EPS]);
    }
}

module neck_bracket() {
    difference() {
        union() {
            // base plate on the deck
            translate([BASE[0], BASE[2], DECK_TOP])
                cube([BASE[1] - BASE[0], BASE[3] - BASE[2], BASE_T]);
            // rear vertical mount face
            translate([WALL_X0, -WALL_Y, WALL_Z0])
                cube([WALL_X1 - WALL_X0, 2 * WALL_Y, WALL_Z1 - WALL_Z0]);
            // AFT gusset: wall base -> rear of base plate. This is the load-
            // bearing one — it + the base-bolt couple react the head's forward-
            // tipping moment. (No FORE gusset: the head BOSS occupies x121..133
            // from z84 up, so any bracket web forward of the wall would collide
            // it — the base plate alone bridges the deck window there.)
            gusset(WALL_X0, WALL_Z1 - 6, 107, WALL_X0 + EPS, -WALL_Y, WALL_Y);
            // side webs: tie the wall ends down to the spine edges (roll)
            for (sy = [-1, 1])
                translate([WALL_X0, sy * WALL_Y - (sy > 0 ? 0 : 4), DECK_TOP])
                    cube([WALL_X1 - WALL_X0 + 10, 4, 12]);
        }
        // ---- deck-through bolt holes (drill-at-assembly clearance) ----
        for (b = BOLT_XY)
            translate([b[0], b[1], DECK_TOP - EPS])
                cylinder(d = M3_CLEAR, h = BASE_T + 2 * EPS);
        // ---- head-mount heat-sets, bored from the FRONT face (x121) so the
        // iron is reached from the head side BEFORE the head goes on; the
        // head boss bolts M3 rearward into them. 6mm bore in the 8mm wall.
        for (z = HM_Z, sy = [-1, 1])
            translate([WALL_X1 - HEATSET_L, sy * HM_Y, z]) rotate([0, 90, 0])
                cylinder(d = HEATSET_D, h = HEATSET_L + EPS);
        // ---- deck lightening-window passthrough (cable route L2->trunk) ----
        // a slot in the base plate over the window center for the L2 pigtail
        // to drop into the C-box / trunk (RJ45 + DC plug; caliper).
        translate([128, -7, DECK_TOP - EPS])
            cube([18, 14, BASE_T + 2 * EPS]);
    }
}

neck_bracket();
